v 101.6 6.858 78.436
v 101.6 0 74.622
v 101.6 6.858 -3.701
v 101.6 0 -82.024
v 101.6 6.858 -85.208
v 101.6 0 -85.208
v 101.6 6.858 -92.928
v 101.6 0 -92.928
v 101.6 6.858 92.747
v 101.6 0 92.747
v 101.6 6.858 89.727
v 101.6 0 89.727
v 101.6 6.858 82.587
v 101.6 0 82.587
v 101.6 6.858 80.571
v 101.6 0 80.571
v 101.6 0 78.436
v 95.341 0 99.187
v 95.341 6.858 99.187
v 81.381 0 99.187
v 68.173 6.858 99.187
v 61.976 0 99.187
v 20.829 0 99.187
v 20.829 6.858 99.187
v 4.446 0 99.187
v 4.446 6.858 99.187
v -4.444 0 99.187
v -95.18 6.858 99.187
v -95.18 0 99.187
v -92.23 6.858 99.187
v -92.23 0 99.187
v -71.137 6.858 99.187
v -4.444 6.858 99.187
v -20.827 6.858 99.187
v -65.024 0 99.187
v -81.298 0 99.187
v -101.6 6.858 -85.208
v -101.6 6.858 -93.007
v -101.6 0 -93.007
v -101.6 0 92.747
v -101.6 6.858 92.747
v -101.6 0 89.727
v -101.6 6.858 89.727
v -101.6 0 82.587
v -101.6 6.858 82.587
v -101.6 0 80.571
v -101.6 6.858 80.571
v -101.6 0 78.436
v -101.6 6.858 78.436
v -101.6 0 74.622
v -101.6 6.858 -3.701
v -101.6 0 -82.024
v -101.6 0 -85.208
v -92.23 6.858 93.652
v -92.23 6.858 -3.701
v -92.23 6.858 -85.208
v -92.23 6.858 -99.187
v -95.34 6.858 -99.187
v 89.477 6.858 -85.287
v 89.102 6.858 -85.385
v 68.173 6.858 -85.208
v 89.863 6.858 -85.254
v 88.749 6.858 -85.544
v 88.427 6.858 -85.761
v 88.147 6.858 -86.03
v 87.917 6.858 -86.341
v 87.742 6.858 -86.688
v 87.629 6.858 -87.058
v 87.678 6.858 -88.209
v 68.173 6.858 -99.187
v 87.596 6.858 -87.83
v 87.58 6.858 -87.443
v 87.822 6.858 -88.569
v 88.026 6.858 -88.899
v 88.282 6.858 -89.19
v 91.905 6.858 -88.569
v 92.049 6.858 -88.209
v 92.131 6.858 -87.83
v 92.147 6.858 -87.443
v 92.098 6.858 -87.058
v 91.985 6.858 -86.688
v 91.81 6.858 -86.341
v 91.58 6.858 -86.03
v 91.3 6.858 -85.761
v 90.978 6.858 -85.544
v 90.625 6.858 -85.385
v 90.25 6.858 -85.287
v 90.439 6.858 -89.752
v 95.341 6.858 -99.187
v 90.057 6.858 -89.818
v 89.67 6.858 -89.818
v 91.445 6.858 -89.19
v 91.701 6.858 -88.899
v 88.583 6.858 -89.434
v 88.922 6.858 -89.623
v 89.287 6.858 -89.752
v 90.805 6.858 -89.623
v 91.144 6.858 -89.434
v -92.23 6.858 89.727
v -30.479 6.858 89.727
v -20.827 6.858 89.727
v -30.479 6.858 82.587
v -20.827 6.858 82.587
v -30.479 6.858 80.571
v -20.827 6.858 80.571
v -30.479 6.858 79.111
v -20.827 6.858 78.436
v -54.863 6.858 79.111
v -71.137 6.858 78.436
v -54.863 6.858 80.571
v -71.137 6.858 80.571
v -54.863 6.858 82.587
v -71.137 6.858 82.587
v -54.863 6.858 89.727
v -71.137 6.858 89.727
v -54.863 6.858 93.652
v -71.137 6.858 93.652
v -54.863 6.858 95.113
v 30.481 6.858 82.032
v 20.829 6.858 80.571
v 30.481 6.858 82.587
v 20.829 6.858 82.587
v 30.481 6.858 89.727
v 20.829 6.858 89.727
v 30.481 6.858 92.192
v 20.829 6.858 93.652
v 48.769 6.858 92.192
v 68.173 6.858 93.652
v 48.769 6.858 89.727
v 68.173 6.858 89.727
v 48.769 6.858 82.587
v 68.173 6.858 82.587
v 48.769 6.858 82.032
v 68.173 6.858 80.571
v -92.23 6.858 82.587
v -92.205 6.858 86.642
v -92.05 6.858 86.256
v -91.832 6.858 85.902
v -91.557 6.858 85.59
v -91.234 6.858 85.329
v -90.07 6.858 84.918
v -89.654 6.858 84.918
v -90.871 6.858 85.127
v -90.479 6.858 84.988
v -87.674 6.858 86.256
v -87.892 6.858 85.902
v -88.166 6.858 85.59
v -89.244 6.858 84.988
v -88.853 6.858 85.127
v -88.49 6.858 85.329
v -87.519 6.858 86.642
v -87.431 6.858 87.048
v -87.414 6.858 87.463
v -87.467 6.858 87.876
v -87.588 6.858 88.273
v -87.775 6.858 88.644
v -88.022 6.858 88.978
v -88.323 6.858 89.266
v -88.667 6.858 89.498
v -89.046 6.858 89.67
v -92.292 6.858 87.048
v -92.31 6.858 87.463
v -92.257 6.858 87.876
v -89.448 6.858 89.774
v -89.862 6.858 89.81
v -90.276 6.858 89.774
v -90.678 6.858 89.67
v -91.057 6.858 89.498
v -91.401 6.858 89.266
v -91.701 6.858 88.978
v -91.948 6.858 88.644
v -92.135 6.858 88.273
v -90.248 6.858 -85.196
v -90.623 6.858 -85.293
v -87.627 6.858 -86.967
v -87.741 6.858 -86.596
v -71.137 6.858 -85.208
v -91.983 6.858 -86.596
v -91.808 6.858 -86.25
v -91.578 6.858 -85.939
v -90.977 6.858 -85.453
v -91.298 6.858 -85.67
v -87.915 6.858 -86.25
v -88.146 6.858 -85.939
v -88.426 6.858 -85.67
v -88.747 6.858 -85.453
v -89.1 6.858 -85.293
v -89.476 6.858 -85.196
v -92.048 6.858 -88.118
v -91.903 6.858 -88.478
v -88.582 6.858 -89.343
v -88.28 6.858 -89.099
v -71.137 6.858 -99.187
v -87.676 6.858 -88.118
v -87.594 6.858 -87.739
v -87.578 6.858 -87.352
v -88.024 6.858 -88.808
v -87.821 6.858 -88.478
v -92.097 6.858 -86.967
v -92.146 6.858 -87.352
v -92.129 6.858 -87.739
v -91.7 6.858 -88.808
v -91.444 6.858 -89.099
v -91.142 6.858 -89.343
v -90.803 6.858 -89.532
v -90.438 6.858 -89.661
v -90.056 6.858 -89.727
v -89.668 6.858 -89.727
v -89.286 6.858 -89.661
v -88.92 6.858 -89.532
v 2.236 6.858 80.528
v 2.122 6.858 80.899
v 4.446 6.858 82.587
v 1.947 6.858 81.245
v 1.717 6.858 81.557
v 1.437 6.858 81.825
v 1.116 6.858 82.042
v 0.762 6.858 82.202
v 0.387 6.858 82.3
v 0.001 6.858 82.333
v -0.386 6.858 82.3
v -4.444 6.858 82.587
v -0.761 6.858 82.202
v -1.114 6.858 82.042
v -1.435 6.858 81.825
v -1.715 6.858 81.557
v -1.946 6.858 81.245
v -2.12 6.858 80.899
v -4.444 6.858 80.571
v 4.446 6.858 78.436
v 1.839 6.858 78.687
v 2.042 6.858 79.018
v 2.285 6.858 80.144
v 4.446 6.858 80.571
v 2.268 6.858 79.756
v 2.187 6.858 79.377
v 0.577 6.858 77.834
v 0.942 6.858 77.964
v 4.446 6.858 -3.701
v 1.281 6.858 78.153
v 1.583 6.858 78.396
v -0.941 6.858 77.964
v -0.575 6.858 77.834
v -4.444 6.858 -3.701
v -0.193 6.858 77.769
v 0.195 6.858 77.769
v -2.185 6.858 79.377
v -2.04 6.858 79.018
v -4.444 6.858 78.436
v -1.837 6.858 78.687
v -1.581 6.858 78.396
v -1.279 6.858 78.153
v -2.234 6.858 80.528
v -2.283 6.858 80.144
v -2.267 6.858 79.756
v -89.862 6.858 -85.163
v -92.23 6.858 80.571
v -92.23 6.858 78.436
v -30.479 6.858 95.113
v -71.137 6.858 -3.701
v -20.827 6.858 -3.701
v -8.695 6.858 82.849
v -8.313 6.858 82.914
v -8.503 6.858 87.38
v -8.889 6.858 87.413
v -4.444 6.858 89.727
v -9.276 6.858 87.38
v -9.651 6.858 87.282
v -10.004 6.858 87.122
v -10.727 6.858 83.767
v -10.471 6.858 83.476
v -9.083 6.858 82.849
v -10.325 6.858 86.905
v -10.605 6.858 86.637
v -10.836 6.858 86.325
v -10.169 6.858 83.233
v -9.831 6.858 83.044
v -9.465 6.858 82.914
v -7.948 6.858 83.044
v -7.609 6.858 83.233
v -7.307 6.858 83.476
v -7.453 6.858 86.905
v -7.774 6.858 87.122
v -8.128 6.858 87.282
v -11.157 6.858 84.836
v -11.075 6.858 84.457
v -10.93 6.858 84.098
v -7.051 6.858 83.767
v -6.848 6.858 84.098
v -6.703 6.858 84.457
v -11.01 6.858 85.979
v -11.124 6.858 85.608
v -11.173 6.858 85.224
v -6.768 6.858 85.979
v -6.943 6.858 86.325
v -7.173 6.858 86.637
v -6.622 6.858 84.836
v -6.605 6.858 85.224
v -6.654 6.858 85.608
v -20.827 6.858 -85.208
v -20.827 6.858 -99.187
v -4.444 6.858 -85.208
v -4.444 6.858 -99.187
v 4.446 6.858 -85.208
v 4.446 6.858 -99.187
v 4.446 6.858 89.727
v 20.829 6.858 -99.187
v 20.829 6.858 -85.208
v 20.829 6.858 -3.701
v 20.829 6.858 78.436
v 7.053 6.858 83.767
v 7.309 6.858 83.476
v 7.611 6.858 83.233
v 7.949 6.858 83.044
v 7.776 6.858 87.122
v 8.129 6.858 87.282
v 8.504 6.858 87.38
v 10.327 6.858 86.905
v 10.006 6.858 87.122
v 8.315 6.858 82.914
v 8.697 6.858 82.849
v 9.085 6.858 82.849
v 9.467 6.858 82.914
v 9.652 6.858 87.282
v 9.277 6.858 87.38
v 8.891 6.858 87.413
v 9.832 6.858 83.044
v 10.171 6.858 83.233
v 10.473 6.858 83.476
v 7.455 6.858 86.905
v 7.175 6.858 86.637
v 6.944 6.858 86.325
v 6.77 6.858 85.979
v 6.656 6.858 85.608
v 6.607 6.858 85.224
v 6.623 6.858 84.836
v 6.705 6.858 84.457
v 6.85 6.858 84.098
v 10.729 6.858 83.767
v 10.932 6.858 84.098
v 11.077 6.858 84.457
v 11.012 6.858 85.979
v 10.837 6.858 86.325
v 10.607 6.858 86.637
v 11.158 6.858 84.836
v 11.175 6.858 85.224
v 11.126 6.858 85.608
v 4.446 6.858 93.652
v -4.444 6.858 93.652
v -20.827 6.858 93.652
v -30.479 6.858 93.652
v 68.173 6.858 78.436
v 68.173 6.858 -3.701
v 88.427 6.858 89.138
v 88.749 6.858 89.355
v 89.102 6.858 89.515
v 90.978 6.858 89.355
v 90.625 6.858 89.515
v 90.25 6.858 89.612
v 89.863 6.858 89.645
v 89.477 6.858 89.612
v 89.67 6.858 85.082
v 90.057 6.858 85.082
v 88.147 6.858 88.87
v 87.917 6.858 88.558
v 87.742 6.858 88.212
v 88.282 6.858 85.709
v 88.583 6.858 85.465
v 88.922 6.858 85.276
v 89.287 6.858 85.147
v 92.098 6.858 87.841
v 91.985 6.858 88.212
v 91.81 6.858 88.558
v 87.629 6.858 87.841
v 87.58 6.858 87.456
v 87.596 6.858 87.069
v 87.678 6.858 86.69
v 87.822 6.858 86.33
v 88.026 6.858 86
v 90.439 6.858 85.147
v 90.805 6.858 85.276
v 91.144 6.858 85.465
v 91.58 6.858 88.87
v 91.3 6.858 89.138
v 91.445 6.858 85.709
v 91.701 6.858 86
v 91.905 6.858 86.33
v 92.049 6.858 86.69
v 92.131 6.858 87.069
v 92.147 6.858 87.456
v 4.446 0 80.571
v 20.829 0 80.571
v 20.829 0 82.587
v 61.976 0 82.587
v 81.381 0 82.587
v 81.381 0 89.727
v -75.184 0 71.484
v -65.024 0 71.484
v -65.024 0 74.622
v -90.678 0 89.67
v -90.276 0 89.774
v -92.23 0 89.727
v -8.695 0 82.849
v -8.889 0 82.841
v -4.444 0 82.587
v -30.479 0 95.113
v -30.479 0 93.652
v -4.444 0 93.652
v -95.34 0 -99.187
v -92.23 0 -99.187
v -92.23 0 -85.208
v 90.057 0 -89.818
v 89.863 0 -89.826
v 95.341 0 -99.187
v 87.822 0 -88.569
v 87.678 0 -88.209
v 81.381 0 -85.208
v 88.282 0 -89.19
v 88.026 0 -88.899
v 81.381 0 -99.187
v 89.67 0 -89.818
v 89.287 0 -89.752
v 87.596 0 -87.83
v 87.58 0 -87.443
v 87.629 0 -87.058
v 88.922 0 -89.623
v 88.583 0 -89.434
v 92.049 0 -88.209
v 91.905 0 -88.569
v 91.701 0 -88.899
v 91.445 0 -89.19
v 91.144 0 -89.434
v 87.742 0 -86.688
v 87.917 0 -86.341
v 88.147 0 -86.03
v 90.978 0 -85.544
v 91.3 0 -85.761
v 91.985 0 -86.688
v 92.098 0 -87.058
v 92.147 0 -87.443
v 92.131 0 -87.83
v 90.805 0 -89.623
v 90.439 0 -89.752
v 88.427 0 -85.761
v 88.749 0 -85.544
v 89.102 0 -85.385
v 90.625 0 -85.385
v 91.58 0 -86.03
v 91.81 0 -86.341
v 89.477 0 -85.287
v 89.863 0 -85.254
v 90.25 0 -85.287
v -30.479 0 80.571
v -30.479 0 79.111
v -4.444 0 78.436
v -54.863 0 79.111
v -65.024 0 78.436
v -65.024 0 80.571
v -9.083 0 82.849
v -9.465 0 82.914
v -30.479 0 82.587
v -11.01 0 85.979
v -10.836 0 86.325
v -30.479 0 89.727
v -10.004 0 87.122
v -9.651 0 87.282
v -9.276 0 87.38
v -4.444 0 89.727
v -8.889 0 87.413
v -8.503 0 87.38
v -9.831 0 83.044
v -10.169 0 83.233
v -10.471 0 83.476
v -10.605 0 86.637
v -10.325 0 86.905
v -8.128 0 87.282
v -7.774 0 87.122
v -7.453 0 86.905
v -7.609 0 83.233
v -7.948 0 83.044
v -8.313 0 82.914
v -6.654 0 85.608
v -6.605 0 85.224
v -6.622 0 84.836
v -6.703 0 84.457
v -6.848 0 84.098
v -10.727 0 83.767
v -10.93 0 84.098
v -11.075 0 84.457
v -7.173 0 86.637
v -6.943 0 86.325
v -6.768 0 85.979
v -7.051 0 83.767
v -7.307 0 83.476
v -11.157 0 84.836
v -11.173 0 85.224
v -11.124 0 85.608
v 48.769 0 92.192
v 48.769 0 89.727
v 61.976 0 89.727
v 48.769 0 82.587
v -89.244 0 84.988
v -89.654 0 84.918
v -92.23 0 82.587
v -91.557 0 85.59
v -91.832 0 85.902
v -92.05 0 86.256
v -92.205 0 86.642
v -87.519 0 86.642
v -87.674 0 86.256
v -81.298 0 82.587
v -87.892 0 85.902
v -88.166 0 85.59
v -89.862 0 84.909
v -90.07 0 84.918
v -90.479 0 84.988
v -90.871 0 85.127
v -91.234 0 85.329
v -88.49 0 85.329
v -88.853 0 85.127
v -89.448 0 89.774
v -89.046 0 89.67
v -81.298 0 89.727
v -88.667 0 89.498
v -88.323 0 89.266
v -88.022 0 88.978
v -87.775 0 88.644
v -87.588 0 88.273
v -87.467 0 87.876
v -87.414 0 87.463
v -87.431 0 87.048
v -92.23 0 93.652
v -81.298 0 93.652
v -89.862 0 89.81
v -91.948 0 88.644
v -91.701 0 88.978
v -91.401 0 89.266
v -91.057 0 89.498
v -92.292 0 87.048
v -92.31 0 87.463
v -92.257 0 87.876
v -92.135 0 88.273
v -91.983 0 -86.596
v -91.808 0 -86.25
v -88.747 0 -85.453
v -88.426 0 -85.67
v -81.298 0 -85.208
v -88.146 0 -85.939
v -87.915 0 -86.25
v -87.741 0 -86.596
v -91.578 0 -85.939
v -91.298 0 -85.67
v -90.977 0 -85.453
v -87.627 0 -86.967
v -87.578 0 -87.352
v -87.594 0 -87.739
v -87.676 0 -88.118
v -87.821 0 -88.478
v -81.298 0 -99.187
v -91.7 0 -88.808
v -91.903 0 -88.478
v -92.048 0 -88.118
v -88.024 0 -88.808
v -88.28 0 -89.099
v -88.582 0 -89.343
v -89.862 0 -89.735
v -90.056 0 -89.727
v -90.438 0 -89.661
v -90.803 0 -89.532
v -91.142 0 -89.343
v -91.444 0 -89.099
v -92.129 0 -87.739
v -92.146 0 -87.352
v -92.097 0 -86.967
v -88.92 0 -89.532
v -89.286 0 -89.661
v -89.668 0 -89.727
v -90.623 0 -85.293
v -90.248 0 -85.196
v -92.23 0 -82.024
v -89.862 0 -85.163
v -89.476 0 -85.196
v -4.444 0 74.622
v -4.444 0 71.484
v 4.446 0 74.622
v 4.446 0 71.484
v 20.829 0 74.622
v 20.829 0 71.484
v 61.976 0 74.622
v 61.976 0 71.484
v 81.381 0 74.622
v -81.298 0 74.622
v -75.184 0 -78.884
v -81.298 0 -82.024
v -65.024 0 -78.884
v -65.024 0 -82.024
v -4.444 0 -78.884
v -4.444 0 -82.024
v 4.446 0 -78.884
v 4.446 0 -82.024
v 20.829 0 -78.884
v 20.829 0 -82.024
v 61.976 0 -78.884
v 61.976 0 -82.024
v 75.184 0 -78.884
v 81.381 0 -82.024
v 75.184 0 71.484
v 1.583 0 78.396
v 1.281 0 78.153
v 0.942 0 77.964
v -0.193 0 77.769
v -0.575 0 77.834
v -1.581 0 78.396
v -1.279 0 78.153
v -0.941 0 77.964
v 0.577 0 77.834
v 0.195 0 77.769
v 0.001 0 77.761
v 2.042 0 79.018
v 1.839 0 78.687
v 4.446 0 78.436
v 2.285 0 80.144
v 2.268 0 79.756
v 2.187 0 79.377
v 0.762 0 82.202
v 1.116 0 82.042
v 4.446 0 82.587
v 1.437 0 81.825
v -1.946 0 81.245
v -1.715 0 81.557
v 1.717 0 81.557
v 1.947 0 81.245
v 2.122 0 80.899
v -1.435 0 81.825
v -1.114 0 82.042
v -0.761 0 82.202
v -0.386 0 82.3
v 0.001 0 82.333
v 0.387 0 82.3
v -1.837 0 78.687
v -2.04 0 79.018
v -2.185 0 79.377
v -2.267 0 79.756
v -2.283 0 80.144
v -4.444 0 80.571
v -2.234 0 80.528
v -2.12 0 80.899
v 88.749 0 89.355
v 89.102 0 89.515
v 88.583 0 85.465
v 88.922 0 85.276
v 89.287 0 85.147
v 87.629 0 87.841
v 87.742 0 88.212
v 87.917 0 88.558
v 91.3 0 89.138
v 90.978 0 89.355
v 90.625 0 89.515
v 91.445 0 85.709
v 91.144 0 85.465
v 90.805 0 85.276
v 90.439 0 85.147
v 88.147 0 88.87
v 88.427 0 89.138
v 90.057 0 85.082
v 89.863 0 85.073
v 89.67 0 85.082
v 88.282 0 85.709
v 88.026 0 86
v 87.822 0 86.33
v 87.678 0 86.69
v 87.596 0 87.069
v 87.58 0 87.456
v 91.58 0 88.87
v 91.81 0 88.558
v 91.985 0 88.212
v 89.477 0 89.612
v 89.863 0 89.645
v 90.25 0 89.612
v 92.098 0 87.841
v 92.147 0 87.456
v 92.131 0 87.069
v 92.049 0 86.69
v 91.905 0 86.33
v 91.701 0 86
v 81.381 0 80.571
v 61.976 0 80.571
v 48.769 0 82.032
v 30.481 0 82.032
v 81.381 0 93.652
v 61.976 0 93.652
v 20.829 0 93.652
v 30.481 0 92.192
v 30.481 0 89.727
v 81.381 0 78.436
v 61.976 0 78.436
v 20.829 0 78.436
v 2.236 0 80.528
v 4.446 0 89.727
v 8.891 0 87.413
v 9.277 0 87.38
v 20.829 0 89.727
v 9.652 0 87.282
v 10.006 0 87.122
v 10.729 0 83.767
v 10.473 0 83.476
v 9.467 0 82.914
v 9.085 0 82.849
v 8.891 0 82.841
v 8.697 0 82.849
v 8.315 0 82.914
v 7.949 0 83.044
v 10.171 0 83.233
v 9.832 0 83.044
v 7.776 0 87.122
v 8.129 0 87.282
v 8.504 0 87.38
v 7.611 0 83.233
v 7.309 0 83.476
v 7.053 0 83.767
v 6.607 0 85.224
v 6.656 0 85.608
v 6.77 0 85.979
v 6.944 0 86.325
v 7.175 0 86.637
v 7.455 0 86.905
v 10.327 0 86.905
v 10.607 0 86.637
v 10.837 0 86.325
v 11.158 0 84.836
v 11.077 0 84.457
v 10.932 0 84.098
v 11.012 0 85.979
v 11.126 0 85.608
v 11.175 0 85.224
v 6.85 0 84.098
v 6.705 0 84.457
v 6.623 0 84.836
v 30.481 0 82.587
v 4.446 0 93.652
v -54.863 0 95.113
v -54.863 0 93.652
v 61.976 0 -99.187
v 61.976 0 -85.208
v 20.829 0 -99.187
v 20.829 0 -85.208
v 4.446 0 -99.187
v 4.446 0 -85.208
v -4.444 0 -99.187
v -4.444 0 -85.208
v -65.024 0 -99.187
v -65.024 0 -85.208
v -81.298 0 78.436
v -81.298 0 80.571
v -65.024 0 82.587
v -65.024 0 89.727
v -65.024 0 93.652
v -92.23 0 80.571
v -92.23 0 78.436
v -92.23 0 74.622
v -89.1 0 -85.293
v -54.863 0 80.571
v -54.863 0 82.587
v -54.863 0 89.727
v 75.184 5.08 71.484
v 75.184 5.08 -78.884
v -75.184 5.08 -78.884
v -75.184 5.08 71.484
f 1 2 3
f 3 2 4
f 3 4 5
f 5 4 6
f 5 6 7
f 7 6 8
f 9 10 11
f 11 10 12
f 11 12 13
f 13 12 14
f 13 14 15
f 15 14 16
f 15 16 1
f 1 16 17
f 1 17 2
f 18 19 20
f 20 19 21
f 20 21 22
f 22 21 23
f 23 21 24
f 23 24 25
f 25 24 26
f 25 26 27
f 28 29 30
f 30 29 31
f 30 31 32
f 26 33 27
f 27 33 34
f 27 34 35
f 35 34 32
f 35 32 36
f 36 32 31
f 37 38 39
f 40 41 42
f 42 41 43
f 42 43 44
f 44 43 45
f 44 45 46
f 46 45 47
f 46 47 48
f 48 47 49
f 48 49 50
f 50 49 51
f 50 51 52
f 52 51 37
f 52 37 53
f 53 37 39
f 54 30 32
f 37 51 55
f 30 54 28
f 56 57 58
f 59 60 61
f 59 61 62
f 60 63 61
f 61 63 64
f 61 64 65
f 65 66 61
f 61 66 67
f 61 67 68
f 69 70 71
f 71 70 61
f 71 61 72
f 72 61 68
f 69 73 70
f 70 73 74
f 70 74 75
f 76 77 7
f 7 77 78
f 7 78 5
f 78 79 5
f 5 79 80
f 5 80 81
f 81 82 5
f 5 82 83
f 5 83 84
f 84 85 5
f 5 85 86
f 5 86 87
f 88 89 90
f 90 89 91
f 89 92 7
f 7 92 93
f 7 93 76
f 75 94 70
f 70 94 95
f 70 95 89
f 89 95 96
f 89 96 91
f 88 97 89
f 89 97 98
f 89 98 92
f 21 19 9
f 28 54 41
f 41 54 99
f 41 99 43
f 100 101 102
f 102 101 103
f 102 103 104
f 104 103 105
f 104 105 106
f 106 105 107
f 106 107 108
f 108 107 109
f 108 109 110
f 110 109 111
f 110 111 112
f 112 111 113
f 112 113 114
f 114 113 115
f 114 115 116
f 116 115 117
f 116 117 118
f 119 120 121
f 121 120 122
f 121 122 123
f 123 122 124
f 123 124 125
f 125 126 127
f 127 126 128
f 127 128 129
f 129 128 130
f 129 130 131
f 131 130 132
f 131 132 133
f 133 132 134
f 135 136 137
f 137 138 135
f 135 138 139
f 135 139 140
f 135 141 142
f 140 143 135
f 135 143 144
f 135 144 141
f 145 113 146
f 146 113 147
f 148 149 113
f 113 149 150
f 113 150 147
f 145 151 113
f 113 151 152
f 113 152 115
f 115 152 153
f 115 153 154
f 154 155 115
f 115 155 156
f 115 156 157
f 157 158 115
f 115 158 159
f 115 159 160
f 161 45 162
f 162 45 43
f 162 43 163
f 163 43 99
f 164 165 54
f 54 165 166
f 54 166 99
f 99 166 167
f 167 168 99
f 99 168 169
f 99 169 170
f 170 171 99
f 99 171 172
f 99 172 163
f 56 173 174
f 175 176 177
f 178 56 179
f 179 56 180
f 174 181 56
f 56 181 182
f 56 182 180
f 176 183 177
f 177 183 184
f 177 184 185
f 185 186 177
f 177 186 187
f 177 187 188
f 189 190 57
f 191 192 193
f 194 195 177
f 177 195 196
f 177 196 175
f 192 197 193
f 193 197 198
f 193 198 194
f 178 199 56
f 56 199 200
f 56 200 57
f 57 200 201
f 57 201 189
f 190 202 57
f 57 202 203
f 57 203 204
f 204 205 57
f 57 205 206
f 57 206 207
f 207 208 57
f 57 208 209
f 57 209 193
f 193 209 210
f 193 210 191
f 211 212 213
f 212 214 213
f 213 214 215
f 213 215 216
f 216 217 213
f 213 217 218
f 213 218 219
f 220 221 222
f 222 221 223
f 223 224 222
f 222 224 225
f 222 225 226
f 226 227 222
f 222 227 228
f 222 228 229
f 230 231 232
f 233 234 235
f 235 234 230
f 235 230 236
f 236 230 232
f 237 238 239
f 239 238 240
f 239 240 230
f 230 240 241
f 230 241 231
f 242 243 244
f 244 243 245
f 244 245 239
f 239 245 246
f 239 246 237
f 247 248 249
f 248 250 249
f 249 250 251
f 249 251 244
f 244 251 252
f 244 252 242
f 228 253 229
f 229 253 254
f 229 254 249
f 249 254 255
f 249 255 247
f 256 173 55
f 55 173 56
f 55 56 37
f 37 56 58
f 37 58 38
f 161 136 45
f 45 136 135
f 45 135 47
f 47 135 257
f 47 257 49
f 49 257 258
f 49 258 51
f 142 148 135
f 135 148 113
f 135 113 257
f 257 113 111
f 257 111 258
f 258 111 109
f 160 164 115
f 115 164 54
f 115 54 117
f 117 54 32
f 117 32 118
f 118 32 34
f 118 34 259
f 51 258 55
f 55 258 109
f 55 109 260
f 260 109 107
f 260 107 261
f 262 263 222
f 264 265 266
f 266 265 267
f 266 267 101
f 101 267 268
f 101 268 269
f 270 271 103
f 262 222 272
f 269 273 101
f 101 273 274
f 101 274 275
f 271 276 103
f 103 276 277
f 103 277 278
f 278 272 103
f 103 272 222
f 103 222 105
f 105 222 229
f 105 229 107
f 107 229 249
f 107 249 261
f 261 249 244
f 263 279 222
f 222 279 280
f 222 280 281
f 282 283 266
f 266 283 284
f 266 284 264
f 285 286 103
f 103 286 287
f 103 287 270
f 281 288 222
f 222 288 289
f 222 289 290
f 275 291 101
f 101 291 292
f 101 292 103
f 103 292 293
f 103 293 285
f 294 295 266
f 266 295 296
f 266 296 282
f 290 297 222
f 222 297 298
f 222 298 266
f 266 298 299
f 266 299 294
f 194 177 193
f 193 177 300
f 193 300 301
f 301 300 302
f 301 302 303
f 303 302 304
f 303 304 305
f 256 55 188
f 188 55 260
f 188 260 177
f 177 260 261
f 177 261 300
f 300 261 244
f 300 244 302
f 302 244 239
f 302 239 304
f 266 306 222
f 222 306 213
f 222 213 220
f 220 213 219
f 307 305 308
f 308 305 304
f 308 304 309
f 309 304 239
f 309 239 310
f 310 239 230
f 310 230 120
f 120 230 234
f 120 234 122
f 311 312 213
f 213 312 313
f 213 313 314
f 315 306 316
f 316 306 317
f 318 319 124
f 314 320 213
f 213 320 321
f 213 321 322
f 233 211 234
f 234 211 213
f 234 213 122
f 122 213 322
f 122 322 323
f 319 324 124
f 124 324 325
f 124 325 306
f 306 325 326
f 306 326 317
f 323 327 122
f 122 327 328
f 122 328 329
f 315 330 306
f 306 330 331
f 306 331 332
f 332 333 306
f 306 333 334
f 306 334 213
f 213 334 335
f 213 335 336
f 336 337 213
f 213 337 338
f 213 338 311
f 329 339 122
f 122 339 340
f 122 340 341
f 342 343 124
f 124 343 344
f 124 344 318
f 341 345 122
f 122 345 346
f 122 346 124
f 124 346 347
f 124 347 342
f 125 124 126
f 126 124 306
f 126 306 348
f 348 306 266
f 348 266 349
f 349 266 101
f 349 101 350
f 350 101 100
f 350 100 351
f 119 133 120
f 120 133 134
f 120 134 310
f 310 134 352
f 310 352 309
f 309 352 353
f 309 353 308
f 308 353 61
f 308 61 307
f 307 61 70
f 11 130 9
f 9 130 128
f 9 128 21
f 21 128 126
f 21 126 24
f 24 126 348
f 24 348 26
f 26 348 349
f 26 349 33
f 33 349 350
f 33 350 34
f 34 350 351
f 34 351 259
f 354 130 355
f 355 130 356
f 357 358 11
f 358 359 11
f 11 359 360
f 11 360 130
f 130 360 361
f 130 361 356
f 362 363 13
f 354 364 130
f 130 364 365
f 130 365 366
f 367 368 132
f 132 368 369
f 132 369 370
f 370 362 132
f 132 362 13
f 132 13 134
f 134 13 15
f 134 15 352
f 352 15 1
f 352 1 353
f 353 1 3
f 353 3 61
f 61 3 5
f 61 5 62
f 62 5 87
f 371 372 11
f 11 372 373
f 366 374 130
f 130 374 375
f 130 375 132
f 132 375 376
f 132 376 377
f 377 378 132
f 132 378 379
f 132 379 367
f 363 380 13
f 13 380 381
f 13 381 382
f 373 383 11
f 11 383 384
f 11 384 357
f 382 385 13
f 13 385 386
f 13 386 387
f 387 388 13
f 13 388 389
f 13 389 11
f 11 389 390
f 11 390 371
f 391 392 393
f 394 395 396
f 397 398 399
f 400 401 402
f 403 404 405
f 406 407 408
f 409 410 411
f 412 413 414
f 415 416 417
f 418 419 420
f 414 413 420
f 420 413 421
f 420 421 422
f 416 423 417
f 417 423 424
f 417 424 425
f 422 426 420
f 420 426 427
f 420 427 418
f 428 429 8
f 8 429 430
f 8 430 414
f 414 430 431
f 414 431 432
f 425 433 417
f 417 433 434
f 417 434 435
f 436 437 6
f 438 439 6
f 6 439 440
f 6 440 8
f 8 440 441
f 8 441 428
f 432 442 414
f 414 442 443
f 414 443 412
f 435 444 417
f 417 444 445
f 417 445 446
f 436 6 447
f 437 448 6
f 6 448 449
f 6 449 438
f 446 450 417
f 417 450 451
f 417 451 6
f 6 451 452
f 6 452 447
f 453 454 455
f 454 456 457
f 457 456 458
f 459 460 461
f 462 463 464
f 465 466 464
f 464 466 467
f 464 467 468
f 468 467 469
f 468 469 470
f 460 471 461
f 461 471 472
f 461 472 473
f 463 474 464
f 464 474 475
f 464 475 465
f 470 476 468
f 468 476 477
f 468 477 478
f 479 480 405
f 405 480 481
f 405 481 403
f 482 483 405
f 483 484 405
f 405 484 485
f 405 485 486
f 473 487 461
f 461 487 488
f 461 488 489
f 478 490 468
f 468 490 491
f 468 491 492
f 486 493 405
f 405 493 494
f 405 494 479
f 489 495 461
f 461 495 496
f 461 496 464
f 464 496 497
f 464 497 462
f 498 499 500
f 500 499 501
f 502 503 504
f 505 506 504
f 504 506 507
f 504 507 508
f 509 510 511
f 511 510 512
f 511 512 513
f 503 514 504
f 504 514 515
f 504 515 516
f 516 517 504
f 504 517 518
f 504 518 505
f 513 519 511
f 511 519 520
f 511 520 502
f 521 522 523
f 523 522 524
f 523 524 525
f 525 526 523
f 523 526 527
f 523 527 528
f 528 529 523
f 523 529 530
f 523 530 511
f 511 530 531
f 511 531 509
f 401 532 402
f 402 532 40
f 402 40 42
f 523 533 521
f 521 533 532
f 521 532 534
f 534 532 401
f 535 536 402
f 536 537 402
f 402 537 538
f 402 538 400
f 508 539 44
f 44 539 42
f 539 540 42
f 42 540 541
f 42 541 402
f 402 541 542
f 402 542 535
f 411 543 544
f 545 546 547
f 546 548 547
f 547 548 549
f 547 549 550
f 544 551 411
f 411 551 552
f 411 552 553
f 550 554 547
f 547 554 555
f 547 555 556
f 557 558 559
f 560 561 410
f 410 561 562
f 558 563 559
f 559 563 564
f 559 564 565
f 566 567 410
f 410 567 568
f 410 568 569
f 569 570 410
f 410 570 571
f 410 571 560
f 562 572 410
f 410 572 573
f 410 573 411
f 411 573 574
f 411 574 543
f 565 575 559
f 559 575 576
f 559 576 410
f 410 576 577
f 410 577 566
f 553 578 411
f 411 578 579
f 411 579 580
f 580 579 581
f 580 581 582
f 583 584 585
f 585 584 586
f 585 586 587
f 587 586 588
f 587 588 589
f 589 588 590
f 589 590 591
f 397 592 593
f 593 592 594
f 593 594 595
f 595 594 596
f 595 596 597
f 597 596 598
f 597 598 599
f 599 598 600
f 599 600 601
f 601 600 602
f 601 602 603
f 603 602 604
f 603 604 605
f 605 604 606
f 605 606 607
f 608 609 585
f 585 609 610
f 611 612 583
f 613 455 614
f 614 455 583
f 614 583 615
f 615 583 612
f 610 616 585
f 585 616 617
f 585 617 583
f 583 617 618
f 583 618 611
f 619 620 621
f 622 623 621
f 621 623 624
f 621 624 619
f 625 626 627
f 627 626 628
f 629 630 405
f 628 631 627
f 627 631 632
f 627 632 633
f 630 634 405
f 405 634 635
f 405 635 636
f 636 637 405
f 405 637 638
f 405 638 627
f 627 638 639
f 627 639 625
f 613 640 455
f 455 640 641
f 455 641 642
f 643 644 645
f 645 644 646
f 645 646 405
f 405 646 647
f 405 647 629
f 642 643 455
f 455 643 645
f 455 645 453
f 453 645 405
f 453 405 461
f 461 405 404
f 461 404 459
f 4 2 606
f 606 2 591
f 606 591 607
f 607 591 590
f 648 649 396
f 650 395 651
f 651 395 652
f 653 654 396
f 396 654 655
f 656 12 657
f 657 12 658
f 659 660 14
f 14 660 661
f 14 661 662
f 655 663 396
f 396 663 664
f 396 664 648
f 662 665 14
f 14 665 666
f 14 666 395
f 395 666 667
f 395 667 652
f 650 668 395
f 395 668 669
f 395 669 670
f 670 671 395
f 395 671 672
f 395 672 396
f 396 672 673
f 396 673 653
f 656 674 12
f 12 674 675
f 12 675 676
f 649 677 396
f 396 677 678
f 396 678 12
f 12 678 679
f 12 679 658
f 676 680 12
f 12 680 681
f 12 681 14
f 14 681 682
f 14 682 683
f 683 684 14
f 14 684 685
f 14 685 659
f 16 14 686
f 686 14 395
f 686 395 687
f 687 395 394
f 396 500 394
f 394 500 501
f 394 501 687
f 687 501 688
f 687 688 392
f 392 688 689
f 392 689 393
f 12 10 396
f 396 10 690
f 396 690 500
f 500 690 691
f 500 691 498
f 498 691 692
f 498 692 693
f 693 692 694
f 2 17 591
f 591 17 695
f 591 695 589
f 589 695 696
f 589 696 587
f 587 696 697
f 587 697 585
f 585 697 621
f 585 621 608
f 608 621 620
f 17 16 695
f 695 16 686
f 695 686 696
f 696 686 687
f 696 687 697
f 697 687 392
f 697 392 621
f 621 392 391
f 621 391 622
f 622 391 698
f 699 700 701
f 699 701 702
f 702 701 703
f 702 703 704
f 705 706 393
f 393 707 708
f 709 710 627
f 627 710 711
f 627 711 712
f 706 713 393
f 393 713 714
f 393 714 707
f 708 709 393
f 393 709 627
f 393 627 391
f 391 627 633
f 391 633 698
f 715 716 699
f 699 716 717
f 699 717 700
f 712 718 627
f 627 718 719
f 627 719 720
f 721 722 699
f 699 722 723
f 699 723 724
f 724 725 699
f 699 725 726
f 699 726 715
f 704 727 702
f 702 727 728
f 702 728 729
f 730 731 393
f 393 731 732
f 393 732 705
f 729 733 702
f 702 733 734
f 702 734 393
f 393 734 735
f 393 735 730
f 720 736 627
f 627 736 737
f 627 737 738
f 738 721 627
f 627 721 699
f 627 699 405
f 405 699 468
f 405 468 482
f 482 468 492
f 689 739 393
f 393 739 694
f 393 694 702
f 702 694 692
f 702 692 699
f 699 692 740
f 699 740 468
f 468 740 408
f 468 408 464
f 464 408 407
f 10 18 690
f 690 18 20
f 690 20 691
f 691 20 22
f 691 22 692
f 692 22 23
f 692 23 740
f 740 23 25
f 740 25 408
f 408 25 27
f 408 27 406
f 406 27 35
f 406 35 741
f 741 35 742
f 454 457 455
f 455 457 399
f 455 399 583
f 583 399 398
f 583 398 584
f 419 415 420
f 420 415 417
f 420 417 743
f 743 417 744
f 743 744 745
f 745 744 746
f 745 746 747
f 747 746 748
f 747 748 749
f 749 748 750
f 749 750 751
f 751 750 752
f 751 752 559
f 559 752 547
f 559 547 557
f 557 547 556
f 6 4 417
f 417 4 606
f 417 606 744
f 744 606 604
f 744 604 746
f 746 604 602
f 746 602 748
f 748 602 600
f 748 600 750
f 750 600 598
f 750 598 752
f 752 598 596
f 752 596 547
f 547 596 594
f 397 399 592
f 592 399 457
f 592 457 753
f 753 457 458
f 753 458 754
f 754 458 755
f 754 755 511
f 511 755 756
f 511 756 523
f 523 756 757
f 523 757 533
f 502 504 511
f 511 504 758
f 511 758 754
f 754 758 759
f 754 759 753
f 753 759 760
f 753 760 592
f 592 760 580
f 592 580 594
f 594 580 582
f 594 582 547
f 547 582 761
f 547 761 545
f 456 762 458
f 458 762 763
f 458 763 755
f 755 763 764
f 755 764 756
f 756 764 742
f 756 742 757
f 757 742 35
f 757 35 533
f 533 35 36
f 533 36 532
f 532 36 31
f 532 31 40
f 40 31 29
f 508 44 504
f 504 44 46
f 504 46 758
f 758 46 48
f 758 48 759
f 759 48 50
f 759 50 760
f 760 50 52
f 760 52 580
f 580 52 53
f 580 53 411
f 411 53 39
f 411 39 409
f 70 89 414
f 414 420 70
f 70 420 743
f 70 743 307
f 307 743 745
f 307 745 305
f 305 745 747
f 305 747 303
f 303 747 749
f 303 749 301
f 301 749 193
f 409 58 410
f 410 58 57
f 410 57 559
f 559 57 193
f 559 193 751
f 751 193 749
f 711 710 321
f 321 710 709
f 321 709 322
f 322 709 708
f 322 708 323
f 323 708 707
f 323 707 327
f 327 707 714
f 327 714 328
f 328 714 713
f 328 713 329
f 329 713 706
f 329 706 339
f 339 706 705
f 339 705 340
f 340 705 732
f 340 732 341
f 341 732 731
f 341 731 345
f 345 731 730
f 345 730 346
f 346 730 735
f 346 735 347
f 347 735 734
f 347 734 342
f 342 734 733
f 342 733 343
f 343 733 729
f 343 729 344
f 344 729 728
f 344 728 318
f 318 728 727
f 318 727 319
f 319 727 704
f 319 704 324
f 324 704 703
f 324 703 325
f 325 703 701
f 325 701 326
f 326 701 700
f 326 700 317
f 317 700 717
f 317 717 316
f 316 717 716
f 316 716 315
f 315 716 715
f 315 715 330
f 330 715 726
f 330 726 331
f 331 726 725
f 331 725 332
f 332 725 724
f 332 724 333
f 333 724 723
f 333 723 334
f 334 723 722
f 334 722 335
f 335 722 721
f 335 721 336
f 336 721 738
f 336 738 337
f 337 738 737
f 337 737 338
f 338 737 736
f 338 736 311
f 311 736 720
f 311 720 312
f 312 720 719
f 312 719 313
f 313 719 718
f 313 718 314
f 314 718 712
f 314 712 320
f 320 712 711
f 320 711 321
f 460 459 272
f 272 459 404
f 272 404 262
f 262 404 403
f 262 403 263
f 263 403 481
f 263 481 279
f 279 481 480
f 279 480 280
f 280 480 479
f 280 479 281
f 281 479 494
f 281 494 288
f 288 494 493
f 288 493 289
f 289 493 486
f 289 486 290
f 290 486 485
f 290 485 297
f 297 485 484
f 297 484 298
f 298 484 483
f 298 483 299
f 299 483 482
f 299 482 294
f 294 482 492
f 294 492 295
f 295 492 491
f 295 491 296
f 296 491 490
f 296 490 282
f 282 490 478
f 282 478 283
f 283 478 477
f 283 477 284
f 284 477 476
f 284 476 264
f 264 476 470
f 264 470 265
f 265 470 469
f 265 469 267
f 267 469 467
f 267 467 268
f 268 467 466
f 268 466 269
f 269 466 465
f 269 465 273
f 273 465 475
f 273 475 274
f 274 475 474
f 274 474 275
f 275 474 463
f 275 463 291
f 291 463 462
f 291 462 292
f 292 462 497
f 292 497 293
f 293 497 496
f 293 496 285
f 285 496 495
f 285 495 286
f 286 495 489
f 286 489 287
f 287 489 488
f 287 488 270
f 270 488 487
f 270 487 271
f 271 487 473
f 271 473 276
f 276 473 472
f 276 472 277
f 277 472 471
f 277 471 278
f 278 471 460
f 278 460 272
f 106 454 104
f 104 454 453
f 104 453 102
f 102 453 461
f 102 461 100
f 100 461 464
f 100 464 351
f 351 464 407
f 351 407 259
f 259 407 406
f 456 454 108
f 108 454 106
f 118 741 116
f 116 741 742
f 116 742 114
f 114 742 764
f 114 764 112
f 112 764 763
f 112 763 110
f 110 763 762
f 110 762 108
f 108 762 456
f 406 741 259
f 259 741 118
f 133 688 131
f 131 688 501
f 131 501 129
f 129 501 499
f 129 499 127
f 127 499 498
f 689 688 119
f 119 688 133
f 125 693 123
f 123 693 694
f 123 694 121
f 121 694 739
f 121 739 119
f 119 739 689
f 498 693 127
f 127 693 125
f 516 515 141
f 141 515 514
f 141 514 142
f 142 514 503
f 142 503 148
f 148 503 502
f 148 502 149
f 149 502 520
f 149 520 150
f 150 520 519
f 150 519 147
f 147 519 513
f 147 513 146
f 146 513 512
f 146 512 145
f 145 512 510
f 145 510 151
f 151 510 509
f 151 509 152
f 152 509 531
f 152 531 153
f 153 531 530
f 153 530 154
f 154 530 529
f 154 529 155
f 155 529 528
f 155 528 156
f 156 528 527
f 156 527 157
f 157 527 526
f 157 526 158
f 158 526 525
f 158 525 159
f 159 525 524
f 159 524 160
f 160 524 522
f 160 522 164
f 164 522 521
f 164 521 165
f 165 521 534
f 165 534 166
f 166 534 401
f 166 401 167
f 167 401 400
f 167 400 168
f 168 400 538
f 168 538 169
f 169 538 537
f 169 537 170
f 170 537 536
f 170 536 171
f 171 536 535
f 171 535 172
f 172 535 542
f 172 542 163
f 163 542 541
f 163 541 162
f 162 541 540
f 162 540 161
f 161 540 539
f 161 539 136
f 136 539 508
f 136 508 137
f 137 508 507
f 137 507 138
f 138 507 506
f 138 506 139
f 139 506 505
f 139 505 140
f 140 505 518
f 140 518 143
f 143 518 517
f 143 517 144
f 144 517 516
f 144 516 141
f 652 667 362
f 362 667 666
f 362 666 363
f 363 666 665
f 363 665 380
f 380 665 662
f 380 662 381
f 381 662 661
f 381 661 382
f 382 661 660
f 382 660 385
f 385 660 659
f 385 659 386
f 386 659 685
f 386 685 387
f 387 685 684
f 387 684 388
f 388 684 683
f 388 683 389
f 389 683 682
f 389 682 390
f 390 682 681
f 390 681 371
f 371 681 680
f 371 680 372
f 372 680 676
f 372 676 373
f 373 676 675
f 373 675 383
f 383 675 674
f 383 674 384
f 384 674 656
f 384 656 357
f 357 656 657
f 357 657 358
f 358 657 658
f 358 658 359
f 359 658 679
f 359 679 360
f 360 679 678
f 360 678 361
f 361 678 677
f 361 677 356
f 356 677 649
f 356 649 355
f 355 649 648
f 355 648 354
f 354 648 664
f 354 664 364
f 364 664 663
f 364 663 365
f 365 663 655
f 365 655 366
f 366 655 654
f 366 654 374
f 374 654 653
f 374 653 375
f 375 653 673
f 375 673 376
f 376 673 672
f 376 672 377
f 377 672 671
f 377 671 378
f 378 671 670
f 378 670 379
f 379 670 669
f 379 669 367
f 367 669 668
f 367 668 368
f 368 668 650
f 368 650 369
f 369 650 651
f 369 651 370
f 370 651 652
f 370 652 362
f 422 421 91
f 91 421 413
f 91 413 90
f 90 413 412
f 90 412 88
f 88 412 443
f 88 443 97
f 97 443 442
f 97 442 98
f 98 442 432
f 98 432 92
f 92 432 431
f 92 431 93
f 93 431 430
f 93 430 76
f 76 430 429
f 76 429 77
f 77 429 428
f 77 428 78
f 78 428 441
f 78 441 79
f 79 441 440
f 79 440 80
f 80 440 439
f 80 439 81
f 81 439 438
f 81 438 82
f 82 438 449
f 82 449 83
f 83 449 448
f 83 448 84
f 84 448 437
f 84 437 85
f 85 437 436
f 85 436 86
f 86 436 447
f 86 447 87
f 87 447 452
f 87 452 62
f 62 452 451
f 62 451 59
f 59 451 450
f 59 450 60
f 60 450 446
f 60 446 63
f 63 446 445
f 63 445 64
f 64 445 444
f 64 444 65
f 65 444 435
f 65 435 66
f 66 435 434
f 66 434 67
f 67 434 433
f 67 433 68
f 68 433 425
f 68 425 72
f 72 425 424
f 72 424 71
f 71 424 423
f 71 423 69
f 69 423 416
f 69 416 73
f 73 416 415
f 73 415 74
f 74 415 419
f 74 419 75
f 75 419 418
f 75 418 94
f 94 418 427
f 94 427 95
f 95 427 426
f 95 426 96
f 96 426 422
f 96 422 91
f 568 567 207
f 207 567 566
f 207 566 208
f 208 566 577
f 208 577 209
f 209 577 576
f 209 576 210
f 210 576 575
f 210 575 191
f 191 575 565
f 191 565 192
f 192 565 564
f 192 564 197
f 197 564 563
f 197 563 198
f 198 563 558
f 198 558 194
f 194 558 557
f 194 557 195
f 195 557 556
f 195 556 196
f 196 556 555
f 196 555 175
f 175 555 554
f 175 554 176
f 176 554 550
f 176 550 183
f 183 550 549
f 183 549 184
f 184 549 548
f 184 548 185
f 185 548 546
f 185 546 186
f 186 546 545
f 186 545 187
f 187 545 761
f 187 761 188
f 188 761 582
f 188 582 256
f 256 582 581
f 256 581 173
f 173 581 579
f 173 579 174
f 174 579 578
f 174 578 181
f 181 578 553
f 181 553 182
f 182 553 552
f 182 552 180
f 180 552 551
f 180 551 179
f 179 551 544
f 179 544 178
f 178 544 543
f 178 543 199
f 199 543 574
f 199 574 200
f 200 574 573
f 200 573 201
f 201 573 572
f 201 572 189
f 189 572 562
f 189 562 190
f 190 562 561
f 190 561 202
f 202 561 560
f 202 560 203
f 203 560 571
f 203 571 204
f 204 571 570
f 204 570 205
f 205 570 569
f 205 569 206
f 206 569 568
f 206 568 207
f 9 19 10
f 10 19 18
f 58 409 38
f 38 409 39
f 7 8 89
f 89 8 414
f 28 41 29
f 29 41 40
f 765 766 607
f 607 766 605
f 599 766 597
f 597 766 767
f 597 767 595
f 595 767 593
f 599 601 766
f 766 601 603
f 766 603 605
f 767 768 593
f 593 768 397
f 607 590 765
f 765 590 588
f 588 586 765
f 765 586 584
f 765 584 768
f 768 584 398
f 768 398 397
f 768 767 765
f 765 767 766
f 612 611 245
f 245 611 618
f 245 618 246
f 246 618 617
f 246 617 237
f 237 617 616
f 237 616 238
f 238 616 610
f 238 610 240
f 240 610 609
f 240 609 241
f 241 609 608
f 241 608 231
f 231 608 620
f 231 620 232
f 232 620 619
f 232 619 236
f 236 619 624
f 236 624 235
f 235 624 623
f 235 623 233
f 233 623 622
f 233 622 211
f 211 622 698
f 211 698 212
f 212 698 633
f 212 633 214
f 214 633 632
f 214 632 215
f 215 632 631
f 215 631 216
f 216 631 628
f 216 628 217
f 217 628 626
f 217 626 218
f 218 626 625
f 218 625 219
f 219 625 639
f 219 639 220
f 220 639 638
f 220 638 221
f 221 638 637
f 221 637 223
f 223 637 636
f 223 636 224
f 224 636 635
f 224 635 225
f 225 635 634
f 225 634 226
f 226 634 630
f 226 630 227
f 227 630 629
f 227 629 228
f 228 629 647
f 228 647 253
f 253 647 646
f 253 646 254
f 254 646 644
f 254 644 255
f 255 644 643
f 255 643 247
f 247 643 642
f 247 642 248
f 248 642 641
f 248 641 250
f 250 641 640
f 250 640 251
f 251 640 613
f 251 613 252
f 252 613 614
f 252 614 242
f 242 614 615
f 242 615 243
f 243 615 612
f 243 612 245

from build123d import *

# Parameters (mm, degrees)
SKETCH1_W           = 150.368
SKETCH1_H           = 150.368
BOSS_EXTRUDE1_DEPTH = 6.858
SKETCH2_W           = 203.2
SKETCH2_H           = 198.374
BOSS_EXTRUDE2_DEPTH = 6.858
SKETCH5_R           = 2.286
CUT_EXTRUDE2_DEPTH  = 6.858
SKETCH6_W           = 18.288
SKETCH6_H           = 10.16
SKETCH6_W_2         = 24.384
SKETCH6_H_2         = 16.002
CUT_EXTRUDE3_DEPTH  = 6.858
SKETCH8_R           = 2.45030007
SKETCH8_R_2         = 2.286
CUT_EXTRUDE8_DEPTH  = 6.858
CUT_EXTRUDE10_DEPTH = 6.858
SKETCH9_W           = 150.368
SKETCH9_H           = 150.368
CUT_EXTRUDE11_DEPTH = 5.08
SKETCH4_R           = 2.286
CUT_EXTRUDE12_DEPTH = 6.858


with BuildPart() as part:
    # Sketch1 → Boss-Extrude1 (new body)
    with BuildSketch(Plane(origin=(0, 0, 0), x_dir=(1, 0, 0), z_dir=(0, 1, 0))):
        Rectangle(SKETCH1_W, SKETCH1_H)
    extrude(amount=BOSS_EXTRUDE1_DEPTH)

    # Sketch2 → Boss-Extrude2 (add)
    with BuildSketch(Plane(origin=(0, 6.858, 0), x_dir=(1, 0, 0), z_dir=(0, 1, 0))):
        Rectangle(SKETCH2_W, SKETCH2_H)
    extrude(amount=-BOSS_EXTRUDE2_DEPTH)

    # Sketch5 → Cut-Extrude2 (cut)
    with BuildSketch(Plane(origin=(0, 6.858, 0), x_dir=(1, 0, 0), z_dir=(0, 1, 0))):
        with Locations((-8.889186327, -85.126681614)):
            Circle(SKETCH5_R)
        with Locations((8.890813673, -85.126681614)):
            Circle(SKETCH5_R)
    extrude(amount=-CUT_EXTRUDE2_DEPTH, mode=Mode.SUBTRACT)

    # Sketch6 → Cut-Extrude3 (cut)
    with BuildSketch(Plane(origin=(0, 0, 0), x_dir=(-1, 0, 0), z_dir=(0, -1, 0))):
        with Locations((-39.624813673, -87.111607671)):
            Rectangle(SKETCH6_W, SKETCH6_H)
        with Locations((42.671186327, -87.111607671)):
            Rectangle(SKETCH6_W_2, SKETCH6_H_2)
    extrude(amount=-CUT_EXTRUDE3_DEPTH, mode=Mode.SUBTRACT)

    # Sketch8 → Cut-Extrude8 (cut)
    with BuildSketch(Plane(origin=(0, 6.858, 0), x_dir=(1, 0, 0), z_dir=(0, 1, 0))):
        with Locations((-89.861846327, -87.359341614)):
            Circle(SKETCH8_R)
        with Locations((89.863473673, -87.359341614)):
            Circle(SKETCH8_R_2)
        with Locations((89.863473673, 87.539978386)):
            Circle(SKETCH8_R_2)
        with Locations((-89.861846327, 87.448846327)):
            Circle(SKETCH8_R_2)
    extrude(amount=-CUT_EXTRUDE8_DEPTH, mode=Mode.SUBTRACT)

    # Sketch7 → Cut-Extrude10 (cut)
    with BuildSketch(Plane(origin=(0, 6.858, 0), x_dir=(1, 0, 0), z_dir=(0, 1, 0))):
        Polygon((101.6, -99.187), (101.6, -92.747495287), (95.341132059, -99.187), align=None)
        Polygon((-95.339504713, 99.187), (-101.6, 99.187), (-101.6, 93.007109855), align=None)
        Polygon((101.6, 92.928132059), (101.6, 99.187), (95.341132059, 99.187), align=None)
        Polygon((-101.6, -92.747495287), (-95.180018996, -99.187), (-101.6, -99.187), align=None)
    extrude(amount=-CUT_EXTRUDE10_DEPTH, mode=Mode.SUBTRACT)

    # Sketch9 → Cut-Extrude11 (cut)
    with BuildSketch(Plane(origin=(0, 0, 0), x_dir=(-1, 0, 0), z_dir=(0, -1, 0))):
        with Locations((0, 3.700326738)):
            Rectangle(SKETCH9_W, SKETCH9_H)
    extrude(amount=-CUT_EXTRUDE11_DEPTH, mode=Mode.SUBTRACT)

    # Sketch4 → Cut-Extrude12 (cut)
    with BuildSketch(Plane(origin=(0, 6.858, 0), x_dir=(1, 0, 0), z_dir=(0, 1, 0))):
        with Locations((0.000813673, -80.046681614)):
            Circle(SKETCH4_R)
    extrude(amount=-CUT_EXTRUDE12_DEPTH, mode=Mode.SUBTRACT)


solid = part.part
